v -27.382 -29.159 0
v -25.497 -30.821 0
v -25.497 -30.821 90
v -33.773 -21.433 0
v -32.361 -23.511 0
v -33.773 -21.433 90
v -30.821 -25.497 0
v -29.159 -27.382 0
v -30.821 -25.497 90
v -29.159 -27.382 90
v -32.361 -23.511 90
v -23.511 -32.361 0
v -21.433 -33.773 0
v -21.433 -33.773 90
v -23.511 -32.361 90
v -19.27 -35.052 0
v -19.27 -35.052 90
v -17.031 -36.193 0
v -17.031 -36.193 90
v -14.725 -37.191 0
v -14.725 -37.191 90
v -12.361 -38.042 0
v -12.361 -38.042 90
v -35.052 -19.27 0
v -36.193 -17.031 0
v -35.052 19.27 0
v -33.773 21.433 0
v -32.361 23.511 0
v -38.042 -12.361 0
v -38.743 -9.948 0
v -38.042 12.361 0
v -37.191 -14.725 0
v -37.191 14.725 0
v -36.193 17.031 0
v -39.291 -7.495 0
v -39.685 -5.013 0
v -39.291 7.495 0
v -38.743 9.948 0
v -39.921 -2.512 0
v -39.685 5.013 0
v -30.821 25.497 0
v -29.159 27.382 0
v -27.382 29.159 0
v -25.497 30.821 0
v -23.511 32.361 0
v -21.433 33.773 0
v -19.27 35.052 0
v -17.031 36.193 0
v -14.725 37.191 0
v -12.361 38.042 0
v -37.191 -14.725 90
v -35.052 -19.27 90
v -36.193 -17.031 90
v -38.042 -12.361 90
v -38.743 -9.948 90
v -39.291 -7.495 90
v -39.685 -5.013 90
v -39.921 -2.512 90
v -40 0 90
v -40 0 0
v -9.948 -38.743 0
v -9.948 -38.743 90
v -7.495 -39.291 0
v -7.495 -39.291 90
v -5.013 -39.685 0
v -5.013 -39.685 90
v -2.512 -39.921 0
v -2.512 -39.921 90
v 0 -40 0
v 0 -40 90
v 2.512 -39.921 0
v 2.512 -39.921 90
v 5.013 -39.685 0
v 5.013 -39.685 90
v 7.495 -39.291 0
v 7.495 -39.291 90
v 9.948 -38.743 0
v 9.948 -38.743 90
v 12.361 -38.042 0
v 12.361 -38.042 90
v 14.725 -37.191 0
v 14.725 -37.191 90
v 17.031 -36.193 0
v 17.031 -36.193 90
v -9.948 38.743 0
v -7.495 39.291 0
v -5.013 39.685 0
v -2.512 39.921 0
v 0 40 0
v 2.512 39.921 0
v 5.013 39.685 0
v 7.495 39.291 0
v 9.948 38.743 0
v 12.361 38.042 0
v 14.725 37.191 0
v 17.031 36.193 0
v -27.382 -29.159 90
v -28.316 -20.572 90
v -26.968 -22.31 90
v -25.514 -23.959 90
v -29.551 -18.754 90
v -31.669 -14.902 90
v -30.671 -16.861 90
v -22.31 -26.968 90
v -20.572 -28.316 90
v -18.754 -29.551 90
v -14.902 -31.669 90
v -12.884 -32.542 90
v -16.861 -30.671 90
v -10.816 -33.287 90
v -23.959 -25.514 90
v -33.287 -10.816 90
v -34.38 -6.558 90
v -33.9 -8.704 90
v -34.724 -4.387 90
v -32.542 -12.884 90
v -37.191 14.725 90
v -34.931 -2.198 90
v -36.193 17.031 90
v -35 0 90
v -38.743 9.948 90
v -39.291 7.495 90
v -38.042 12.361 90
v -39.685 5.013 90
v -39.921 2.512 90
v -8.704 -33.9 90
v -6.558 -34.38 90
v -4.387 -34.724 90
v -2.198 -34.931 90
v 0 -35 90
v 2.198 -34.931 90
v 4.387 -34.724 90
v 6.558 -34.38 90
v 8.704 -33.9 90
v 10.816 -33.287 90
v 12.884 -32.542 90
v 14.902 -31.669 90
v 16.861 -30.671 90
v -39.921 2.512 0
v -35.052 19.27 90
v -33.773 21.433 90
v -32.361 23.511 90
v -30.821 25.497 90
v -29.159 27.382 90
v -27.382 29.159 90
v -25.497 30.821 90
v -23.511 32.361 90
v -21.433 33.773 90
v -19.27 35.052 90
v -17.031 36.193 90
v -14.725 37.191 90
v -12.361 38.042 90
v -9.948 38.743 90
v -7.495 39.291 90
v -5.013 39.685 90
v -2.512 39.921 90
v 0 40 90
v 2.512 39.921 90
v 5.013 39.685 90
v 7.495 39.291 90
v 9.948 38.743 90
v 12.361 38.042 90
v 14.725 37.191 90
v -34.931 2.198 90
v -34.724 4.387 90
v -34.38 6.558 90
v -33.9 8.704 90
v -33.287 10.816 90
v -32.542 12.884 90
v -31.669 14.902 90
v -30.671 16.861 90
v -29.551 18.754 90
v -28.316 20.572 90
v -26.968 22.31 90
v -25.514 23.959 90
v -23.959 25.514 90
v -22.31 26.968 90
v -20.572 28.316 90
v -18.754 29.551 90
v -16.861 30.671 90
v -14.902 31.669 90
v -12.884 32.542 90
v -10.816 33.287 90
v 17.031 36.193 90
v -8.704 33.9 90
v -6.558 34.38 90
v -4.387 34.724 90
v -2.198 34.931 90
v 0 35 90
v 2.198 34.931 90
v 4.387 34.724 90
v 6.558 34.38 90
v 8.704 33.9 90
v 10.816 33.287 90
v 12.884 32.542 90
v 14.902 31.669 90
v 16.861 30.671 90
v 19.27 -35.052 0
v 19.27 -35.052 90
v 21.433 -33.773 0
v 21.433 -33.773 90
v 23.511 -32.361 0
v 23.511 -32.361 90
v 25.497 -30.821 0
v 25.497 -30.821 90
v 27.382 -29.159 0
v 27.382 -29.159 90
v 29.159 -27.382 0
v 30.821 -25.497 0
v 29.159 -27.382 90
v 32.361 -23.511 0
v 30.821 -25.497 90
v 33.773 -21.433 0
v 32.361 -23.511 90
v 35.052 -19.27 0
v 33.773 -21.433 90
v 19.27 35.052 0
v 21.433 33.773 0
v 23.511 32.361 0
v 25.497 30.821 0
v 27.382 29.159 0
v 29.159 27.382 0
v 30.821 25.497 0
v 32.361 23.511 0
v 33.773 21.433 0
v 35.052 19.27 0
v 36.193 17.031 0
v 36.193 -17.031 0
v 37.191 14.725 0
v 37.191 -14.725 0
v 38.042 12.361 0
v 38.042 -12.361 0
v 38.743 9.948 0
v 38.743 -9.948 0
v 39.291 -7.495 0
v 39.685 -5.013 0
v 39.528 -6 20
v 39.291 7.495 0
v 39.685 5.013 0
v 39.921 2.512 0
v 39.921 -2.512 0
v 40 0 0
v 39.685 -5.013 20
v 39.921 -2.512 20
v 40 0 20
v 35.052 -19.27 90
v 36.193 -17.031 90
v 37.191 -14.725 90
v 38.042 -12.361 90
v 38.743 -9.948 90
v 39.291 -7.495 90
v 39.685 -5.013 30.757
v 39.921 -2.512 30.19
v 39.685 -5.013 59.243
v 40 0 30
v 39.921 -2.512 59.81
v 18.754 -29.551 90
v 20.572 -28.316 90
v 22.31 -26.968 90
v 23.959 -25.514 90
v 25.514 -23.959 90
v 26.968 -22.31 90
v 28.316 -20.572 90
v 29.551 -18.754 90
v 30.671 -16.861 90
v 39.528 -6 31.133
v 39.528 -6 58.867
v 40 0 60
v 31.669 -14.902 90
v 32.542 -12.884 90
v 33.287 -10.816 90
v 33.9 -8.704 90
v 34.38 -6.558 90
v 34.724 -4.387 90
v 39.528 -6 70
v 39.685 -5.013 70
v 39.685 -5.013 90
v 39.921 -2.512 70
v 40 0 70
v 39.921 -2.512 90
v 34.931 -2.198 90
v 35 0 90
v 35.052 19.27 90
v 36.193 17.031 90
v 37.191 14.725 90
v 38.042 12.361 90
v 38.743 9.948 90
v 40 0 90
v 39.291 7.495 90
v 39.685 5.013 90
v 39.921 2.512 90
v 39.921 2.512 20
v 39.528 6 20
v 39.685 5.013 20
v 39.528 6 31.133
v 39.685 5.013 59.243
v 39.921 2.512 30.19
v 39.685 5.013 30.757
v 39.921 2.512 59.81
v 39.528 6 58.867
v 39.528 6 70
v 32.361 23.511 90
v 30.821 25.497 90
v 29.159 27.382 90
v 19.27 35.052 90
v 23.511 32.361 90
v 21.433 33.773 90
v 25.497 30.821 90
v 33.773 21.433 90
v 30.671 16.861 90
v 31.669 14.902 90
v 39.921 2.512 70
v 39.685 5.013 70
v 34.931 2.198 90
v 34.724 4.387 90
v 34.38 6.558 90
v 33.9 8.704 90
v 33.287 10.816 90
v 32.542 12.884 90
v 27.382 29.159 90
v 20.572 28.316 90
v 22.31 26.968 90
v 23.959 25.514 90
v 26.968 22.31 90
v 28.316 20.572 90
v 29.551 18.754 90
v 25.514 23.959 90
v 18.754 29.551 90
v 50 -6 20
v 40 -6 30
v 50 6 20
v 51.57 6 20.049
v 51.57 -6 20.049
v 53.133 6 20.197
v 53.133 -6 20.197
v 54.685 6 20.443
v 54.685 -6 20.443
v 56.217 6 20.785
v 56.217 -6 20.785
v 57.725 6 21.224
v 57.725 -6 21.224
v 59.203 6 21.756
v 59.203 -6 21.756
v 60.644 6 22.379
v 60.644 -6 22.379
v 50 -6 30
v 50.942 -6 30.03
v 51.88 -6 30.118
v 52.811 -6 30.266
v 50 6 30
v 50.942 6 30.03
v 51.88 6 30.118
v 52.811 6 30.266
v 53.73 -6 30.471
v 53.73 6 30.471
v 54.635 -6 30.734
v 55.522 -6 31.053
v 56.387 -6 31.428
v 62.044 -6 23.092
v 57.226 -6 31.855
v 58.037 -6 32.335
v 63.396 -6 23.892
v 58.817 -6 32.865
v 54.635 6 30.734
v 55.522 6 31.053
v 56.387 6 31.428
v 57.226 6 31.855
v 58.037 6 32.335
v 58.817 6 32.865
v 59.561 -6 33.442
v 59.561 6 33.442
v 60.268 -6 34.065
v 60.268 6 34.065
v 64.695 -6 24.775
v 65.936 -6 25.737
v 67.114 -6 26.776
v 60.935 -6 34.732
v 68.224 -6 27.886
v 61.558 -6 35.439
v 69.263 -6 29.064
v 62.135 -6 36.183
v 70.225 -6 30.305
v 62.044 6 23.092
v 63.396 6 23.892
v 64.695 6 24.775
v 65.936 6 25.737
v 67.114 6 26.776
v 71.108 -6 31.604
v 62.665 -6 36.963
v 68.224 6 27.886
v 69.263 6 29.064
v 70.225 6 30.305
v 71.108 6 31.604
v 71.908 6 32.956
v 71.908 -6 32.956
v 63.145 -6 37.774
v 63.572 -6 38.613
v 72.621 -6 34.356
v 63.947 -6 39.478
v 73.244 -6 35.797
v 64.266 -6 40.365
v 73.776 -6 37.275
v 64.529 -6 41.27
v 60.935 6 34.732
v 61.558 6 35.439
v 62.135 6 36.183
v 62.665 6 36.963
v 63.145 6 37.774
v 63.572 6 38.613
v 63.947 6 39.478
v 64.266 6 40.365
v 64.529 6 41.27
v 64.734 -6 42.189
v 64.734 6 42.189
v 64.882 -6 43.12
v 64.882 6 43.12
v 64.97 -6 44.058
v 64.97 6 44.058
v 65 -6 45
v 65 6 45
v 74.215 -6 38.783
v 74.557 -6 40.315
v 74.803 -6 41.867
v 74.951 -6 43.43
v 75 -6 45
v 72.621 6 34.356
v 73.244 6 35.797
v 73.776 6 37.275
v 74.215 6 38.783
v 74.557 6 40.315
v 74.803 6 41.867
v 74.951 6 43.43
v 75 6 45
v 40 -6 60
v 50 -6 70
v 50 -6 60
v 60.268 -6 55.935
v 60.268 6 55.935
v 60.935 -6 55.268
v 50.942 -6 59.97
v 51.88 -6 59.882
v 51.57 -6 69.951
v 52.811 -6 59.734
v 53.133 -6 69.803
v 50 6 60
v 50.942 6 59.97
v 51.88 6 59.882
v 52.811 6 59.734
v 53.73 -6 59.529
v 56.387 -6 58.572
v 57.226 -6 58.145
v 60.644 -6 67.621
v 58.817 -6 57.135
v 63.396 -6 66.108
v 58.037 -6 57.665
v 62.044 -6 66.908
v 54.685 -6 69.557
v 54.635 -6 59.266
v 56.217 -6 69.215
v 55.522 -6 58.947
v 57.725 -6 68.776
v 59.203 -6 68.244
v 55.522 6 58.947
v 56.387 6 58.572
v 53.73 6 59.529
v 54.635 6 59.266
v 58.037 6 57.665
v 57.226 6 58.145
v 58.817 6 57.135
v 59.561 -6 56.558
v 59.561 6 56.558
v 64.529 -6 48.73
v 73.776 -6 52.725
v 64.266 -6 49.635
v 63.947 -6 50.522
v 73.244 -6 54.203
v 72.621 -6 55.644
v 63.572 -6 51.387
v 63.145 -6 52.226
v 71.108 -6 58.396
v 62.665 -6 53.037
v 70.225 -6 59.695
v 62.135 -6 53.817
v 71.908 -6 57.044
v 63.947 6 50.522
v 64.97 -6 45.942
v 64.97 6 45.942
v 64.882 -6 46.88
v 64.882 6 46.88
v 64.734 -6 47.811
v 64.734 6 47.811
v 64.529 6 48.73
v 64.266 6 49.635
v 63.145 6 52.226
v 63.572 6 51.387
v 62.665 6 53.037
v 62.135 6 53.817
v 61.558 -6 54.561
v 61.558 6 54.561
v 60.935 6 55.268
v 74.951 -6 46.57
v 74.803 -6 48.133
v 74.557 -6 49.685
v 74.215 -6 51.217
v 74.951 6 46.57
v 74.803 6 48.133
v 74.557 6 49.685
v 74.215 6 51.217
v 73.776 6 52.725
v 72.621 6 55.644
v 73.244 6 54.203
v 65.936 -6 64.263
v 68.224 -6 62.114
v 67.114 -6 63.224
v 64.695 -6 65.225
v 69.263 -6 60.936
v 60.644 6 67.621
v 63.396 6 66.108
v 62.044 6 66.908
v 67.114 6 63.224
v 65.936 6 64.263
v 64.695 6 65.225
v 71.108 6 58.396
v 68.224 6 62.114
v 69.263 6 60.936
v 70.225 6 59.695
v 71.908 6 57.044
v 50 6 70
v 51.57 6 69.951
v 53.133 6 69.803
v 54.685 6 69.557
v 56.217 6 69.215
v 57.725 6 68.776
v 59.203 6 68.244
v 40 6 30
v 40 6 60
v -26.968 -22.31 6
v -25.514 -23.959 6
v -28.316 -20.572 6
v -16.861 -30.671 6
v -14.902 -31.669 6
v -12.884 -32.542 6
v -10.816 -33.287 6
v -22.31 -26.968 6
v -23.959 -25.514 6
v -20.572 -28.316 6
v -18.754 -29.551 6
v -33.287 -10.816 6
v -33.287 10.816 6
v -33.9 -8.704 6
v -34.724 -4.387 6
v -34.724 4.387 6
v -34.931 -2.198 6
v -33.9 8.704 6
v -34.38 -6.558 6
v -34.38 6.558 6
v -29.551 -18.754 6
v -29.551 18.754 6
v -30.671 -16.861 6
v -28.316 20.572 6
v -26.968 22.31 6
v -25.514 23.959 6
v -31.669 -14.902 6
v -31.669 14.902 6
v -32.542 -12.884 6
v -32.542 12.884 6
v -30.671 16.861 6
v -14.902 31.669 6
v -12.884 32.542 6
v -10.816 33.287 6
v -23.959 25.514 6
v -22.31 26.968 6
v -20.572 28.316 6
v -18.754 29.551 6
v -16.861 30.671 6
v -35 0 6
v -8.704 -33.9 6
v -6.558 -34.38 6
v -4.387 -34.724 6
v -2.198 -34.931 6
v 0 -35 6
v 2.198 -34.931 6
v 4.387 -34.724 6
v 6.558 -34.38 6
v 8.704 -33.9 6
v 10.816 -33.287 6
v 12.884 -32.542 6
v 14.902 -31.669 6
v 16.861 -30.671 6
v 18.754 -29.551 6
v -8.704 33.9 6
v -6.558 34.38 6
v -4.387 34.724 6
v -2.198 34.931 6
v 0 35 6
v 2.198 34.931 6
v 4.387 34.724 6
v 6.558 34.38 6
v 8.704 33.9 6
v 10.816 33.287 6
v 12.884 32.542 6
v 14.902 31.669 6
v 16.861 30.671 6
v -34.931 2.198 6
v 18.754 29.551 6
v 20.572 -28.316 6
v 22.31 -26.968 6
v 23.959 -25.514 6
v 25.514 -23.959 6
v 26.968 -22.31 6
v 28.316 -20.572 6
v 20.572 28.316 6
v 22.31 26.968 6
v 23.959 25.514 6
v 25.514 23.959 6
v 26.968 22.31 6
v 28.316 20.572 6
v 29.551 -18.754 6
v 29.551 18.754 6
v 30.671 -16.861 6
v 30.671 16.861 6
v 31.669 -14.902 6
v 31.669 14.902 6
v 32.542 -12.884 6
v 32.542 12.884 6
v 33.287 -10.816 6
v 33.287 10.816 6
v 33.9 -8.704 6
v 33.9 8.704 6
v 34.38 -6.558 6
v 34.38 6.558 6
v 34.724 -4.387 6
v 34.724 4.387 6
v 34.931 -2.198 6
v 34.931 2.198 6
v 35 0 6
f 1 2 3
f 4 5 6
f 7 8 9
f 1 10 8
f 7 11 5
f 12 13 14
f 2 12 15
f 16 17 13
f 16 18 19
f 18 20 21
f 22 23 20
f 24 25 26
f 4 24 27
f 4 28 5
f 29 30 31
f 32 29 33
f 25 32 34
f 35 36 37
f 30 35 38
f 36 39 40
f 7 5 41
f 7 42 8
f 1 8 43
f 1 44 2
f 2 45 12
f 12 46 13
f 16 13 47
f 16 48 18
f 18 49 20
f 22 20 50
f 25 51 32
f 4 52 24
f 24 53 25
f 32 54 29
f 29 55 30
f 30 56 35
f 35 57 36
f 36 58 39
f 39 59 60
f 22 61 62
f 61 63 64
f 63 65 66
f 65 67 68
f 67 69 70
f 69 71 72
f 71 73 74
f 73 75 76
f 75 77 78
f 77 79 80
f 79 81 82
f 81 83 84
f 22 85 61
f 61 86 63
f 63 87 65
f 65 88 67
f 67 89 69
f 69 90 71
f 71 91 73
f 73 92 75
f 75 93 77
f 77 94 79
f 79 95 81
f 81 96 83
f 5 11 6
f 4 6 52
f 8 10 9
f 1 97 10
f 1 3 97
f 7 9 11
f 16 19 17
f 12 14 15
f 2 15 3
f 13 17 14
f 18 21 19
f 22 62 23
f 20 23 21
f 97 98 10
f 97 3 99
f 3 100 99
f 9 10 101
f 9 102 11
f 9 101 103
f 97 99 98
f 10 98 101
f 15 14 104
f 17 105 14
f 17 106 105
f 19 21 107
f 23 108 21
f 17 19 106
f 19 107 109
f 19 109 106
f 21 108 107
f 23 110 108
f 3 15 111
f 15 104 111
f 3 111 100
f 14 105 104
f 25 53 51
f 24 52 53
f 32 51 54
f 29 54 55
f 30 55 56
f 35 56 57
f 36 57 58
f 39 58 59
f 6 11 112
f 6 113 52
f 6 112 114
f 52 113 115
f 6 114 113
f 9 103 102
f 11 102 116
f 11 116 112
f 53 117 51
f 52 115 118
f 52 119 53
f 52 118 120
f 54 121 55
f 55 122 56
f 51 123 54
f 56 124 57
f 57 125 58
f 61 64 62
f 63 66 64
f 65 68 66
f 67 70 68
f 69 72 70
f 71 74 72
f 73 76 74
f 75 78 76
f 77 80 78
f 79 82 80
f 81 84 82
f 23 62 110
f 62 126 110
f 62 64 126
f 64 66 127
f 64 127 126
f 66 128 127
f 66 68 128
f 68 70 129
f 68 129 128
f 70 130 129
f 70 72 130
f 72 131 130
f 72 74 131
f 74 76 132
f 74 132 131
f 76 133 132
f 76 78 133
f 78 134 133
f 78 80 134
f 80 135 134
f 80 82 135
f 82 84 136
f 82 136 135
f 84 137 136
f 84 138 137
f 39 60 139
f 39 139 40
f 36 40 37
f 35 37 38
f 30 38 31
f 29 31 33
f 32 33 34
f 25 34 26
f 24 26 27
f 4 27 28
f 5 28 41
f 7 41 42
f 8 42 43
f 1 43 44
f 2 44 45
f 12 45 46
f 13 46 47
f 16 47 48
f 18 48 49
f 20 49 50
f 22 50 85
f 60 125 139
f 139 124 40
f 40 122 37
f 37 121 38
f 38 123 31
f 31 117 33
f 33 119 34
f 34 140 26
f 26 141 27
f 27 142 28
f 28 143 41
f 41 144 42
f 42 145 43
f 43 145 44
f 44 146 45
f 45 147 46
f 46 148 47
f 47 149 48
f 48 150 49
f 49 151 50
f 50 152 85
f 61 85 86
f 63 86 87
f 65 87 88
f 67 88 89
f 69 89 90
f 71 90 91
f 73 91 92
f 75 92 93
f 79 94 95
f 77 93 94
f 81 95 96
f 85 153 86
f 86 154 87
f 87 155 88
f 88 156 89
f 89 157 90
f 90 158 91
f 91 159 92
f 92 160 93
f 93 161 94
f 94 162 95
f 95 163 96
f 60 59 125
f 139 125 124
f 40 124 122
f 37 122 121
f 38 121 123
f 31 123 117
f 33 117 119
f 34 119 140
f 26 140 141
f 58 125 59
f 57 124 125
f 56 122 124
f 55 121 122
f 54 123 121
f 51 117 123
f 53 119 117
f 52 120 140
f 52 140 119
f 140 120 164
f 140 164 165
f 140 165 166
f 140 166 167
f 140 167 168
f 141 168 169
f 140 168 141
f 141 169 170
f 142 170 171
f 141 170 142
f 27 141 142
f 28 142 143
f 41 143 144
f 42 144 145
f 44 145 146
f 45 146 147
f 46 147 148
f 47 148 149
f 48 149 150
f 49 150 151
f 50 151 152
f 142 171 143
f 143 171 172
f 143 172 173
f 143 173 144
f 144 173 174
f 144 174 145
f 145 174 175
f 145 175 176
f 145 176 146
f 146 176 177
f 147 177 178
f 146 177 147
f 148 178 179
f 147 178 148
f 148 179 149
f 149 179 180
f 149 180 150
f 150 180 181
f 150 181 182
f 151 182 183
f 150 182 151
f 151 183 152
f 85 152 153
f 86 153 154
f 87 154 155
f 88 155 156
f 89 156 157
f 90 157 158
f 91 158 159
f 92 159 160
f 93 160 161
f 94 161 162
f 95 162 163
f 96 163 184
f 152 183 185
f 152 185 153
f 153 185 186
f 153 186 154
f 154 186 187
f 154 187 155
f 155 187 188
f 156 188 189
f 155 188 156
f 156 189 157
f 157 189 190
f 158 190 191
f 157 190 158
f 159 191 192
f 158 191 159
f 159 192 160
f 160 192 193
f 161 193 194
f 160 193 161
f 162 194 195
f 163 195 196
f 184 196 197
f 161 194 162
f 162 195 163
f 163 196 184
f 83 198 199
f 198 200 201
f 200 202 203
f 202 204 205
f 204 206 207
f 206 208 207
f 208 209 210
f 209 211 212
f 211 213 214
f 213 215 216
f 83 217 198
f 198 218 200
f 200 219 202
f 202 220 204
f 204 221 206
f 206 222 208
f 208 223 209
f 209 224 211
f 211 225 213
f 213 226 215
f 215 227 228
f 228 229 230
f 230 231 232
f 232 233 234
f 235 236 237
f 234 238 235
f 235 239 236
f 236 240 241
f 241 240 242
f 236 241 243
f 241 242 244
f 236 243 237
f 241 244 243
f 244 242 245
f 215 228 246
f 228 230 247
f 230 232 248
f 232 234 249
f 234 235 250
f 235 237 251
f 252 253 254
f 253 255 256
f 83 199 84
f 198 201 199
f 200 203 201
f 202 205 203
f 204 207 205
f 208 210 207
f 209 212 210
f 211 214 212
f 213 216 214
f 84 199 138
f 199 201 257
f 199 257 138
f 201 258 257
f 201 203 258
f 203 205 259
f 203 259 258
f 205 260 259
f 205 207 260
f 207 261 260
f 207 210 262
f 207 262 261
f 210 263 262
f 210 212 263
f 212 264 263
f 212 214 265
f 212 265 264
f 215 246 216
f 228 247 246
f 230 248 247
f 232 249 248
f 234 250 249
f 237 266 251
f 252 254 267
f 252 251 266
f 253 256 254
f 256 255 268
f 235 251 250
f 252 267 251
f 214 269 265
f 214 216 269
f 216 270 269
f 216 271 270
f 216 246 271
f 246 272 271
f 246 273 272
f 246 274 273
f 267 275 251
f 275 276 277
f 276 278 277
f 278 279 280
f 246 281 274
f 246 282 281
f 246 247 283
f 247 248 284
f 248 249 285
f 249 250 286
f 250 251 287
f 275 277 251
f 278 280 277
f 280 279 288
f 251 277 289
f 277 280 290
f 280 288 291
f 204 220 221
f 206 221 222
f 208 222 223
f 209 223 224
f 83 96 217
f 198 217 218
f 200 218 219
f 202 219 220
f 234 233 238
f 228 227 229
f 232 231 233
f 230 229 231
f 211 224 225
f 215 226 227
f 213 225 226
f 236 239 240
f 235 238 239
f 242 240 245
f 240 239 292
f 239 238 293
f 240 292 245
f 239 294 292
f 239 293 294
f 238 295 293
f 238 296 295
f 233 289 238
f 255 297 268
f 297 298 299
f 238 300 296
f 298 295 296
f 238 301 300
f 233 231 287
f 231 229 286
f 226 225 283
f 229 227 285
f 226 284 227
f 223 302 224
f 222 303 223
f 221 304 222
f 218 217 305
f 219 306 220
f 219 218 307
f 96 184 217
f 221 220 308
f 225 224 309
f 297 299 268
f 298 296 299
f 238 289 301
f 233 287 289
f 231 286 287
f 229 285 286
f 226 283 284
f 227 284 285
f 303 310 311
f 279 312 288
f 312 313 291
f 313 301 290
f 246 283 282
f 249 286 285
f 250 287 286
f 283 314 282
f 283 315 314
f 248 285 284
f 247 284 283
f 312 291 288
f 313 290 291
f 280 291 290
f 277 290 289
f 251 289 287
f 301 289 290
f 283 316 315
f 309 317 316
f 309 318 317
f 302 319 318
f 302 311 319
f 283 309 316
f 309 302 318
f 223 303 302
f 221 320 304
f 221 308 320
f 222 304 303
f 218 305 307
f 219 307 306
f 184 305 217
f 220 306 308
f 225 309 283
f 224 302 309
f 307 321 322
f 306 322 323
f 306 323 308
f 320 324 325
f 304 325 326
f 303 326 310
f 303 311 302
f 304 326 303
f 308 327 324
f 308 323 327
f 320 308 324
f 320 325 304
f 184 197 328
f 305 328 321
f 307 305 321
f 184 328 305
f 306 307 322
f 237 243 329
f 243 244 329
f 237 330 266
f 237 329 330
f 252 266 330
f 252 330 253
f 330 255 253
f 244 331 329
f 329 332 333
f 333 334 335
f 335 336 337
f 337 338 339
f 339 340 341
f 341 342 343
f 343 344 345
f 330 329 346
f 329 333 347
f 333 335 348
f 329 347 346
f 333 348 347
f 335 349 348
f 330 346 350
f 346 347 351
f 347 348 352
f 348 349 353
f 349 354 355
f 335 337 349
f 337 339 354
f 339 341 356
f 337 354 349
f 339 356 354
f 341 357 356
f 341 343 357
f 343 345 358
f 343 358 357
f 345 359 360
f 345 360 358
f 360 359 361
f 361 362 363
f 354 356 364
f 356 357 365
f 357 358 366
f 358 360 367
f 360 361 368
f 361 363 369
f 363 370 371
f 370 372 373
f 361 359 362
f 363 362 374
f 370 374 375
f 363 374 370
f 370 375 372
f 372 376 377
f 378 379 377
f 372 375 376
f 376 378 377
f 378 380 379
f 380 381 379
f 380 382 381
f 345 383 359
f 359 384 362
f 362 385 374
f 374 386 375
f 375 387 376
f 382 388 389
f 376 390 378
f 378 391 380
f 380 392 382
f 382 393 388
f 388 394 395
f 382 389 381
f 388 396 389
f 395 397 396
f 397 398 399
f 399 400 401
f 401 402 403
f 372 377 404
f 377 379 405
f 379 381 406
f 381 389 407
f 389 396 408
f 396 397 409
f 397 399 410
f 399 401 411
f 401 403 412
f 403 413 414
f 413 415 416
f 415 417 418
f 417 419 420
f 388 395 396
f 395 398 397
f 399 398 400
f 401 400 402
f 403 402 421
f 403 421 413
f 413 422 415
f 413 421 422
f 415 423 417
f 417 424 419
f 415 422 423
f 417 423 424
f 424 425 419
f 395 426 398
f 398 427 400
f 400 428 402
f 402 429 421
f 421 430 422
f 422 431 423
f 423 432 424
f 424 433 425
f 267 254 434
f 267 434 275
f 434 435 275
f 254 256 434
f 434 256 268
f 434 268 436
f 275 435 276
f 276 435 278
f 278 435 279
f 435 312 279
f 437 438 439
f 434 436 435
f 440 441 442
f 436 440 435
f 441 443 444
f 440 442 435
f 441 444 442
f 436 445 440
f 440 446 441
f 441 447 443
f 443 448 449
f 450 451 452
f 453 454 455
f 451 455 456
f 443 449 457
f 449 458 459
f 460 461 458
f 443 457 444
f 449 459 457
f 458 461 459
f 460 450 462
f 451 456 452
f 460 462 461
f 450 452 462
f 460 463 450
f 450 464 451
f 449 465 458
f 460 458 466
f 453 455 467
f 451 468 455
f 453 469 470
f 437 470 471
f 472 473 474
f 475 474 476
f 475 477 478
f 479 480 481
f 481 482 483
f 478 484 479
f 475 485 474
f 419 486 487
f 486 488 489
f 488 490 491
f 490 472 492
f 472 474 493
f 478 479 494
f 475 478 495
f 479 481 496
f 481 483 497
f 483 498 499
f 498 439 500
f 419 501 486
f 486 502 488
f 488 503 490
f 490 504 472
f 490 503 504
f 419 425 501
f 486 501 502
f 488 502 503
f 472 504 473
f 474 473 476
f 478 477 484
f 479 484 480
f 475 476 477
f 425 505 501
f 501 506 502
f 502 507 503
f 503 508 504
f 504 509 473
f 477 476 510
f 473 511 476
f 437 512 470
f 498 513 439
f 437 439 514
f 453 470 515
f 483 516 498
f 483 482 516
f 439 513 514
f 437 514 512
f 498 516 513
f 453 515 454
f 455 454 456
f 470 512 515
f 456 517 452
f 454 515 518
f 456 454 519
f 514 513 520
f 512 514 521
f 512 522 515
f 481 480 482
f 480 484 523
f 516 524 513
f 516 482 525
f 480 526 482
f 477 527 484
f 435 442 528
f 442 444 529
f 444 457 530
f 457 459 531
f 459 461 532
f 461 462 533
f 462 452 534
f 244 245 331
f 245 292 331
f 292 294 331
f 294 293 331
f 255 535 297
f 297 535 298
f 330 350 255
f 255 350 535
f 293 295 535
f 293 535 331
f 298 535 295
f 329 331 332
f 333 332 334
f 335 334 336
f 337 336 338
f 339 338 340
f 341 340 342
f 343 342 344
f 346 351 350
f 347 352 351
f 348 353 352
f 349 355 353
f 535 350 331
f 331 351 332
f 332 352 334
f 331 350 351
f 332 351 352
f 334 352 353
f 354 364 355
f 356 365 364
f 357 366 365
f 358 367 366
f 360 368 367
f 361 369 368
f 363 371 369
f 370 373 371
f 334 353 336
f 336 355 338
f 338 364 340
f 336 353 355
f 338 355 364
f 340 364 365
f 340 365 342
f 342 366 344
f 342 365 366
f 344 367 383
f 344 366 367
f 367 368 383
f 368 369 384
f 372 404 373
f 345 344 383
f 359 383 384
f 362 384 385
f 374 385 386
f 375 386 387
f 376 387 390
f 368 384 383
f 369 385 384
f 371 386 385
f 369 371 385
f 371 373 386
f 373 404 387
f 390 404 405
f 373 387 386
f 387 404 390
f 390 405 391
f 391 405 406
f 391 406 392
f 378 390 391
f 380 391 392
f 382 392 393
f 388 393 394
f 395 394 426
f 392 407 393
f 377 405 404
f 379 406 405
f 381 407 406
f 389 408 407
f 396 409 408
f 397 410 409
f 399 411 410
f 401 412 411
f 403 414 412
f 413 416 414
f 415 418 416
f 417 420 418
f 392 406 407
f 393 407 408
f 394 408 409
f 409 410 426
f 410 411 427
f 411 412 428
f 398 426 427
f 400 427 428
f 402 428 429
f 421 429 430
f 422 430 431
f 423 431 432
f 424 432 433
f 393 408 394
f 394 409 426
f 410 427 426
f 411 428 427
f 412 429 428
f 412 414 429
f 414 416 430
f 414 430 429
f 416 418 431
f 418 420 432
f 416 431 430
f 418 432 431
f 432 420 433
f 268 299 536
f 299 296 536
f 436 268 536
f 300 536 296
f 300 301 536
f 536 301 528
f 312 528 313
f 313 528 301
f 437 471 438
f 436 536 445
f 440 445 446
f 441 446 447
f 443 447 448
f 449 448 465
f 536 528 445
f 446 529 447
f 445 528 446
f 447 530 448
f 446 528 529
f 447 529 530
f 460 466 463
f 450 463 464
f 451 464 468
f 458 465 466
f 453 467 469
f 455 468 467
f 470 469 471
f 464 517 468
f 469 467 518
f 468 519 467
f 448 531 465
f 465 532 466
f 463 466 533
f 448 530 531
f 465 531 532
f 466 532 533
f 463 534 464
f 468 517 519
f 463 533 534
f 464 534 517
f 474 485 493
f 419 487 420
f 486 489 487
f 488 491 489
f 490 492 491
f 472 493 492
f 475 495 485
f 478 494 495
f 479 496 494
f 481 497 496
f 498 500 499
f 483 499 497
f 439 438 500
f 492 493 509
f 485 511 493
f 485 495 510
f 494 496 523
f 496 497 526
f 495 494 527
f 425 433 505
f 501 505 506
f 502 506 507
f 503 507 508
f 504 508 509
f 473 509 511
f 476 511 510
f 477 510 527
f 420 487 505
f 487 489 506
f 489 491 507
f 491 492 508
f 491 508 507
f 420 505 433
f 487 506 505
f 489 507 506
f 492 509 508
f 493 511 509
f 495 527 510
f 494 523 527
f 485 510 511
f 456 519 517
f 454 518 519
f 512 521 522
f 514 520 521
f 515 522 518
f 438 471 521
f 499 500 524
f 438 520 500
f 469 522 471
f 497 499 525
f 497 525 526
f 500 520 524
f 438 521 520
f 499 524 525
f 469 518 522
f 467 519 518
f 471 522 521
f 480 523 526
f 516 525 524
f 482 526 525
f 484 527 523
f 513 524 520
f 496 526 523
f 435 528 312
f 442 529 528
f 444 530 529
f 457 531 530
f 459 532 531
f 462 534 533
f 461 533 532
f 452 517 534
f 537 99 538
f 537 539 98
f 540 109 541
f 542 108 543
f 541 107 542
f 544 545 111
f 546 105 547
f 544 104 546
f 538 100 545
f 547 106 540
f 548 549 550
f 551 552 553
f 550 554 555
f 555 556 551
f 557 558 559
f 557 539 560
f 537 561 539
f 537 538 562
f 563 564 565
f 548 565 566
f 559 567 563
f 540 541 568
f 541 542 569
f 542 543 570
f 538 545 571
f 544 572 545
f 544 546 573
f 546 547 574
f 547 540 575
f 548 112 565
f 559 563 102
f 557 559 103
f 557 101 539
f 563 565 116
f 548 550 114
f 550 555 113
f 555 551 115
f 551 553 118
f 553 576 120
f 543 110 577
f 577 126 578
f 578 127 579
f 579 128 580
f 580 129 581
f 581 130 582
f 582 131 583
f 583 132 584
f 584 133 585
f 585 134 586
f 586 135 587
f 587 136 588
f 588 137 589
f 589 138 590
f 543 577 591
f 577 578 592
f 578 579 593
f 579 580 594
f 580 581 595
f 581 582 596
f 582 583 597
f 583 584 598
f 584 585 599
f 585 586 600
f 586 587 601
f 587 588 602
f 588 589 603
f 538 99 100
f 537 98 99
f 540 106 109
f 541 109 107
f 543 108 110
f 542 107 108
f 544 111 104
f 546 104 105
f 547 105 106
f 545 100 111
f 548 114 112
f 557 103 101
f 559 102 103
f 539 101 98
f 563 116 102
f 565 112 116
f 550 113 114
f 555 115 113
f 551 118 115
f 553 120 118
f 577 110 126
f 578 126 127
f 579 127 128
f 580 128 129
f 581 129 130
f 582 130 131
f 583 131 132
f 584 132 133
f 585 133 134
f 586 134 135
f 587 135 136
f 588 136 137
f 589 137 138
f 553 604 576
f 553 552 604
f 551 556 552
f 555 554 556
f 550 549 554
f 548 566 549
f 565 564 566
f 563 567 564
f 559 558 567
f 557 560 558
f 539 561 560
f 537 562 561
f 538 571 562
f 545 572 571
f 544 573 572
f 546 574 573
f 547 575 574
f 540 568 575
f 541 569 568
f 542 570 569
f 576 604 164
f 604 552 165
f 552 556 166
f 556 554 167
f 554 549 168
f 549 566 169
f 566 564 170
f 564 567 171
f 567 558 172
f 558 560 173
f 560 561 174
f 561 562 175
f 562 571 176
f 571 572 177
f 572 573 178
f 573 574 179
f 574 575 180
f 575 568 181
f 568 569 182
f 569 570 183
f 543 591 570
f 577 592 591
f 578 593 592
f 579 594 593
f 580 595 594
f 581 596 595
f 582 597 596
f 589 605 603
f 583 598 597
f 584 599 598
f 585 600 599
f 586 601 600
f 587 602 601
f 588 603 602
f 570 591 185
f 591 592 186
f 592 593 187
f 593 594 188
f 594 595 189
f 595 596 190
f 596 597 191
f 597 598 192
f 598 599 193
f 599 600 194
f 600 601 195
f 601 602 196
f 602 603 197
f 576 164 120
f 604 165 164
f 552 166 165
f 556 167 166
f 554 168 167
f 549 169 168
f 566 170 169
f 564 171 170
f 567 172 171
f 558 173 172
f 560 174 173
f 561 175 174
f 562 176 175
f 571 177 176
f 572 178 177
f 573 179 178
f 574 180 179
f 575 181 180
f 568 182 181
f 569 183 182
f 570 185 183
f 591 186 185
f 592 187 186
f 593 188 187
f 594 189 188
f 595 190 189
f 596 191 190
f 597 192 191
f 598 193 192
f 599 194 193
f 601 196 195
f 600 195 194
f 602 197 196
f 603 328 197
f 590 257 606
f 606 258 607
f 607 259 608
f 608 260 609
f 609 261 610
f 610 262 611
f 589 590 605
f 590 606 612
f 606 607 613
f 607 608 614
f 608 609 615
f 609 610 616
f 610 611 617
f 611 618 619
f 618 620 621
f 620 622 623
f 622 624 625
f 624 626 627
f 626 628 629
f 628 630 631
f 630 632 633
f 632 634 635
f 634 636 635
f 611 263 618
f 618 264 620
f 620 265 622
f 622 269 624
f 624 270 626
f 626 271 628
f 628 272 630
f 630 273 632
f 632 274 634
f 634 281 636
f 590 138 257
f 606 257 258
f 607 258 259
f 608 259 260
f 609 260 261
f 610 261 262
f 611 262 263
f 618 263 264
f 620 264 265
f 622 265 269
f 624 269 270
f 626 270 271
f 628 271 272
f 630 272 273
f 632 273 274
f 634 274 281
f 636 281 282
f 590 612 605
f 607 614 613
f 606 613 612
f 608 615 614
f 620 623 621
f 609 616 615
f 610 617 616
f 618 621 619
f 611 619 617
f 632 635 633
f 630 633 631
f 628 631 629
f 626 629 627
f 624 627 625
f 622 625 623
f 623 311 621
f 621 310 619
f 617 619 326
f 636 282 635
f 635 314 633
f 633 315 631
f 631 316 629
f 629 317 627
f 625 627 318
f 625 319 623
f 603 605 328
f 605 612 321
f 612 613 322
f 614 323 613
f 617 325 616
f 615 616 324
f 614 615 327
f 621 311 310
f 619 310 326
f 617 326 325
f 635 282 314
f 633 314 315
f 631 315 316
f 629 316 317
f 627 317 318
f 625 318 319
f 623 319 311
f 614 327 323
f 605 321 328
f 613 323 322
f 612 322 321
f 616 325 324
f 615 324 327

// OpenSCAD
$fn = 100;

// マグカップのサイズ情報
mug_height = 90;
outer_radius = 40; // 外径 80mm
inner_radius = 35; // 内径 70mm
bottom_thickness = 6;

// 取手のサイズ情報
handle_y_width = 12; // 取手のY方向の厚み

difference() {
    // 本体外観と取手を統合
    union() {
        // マグカップ外形本体
        cylinder(h = mug_height, r = outer_radius);

        // 取手 (+X 軸方向)
        rotate([90, 0, 0])
        linear_extrude(height = handle_y_width, center = true)
        difference() {
            // 取手外形 (D字型)
            hull() {
                translate([35, 20]) square([15, 50]);
                translate([50, 45]) circle(r = 25);
            }
            // 取手内側の穴 (高さ30mm × 幅25mm)
            hull() {
                translate([40, 30]) square([10, 30]);
                translate([50, 45]) circle(r = 15);
            }
        }
    }

    // マグカップ内側のくり抜き
    translate([0, 0, bottom_thickness])
        cylinder(h = mug_height - bottom_thickness + 1, r = inner_radius);
}
